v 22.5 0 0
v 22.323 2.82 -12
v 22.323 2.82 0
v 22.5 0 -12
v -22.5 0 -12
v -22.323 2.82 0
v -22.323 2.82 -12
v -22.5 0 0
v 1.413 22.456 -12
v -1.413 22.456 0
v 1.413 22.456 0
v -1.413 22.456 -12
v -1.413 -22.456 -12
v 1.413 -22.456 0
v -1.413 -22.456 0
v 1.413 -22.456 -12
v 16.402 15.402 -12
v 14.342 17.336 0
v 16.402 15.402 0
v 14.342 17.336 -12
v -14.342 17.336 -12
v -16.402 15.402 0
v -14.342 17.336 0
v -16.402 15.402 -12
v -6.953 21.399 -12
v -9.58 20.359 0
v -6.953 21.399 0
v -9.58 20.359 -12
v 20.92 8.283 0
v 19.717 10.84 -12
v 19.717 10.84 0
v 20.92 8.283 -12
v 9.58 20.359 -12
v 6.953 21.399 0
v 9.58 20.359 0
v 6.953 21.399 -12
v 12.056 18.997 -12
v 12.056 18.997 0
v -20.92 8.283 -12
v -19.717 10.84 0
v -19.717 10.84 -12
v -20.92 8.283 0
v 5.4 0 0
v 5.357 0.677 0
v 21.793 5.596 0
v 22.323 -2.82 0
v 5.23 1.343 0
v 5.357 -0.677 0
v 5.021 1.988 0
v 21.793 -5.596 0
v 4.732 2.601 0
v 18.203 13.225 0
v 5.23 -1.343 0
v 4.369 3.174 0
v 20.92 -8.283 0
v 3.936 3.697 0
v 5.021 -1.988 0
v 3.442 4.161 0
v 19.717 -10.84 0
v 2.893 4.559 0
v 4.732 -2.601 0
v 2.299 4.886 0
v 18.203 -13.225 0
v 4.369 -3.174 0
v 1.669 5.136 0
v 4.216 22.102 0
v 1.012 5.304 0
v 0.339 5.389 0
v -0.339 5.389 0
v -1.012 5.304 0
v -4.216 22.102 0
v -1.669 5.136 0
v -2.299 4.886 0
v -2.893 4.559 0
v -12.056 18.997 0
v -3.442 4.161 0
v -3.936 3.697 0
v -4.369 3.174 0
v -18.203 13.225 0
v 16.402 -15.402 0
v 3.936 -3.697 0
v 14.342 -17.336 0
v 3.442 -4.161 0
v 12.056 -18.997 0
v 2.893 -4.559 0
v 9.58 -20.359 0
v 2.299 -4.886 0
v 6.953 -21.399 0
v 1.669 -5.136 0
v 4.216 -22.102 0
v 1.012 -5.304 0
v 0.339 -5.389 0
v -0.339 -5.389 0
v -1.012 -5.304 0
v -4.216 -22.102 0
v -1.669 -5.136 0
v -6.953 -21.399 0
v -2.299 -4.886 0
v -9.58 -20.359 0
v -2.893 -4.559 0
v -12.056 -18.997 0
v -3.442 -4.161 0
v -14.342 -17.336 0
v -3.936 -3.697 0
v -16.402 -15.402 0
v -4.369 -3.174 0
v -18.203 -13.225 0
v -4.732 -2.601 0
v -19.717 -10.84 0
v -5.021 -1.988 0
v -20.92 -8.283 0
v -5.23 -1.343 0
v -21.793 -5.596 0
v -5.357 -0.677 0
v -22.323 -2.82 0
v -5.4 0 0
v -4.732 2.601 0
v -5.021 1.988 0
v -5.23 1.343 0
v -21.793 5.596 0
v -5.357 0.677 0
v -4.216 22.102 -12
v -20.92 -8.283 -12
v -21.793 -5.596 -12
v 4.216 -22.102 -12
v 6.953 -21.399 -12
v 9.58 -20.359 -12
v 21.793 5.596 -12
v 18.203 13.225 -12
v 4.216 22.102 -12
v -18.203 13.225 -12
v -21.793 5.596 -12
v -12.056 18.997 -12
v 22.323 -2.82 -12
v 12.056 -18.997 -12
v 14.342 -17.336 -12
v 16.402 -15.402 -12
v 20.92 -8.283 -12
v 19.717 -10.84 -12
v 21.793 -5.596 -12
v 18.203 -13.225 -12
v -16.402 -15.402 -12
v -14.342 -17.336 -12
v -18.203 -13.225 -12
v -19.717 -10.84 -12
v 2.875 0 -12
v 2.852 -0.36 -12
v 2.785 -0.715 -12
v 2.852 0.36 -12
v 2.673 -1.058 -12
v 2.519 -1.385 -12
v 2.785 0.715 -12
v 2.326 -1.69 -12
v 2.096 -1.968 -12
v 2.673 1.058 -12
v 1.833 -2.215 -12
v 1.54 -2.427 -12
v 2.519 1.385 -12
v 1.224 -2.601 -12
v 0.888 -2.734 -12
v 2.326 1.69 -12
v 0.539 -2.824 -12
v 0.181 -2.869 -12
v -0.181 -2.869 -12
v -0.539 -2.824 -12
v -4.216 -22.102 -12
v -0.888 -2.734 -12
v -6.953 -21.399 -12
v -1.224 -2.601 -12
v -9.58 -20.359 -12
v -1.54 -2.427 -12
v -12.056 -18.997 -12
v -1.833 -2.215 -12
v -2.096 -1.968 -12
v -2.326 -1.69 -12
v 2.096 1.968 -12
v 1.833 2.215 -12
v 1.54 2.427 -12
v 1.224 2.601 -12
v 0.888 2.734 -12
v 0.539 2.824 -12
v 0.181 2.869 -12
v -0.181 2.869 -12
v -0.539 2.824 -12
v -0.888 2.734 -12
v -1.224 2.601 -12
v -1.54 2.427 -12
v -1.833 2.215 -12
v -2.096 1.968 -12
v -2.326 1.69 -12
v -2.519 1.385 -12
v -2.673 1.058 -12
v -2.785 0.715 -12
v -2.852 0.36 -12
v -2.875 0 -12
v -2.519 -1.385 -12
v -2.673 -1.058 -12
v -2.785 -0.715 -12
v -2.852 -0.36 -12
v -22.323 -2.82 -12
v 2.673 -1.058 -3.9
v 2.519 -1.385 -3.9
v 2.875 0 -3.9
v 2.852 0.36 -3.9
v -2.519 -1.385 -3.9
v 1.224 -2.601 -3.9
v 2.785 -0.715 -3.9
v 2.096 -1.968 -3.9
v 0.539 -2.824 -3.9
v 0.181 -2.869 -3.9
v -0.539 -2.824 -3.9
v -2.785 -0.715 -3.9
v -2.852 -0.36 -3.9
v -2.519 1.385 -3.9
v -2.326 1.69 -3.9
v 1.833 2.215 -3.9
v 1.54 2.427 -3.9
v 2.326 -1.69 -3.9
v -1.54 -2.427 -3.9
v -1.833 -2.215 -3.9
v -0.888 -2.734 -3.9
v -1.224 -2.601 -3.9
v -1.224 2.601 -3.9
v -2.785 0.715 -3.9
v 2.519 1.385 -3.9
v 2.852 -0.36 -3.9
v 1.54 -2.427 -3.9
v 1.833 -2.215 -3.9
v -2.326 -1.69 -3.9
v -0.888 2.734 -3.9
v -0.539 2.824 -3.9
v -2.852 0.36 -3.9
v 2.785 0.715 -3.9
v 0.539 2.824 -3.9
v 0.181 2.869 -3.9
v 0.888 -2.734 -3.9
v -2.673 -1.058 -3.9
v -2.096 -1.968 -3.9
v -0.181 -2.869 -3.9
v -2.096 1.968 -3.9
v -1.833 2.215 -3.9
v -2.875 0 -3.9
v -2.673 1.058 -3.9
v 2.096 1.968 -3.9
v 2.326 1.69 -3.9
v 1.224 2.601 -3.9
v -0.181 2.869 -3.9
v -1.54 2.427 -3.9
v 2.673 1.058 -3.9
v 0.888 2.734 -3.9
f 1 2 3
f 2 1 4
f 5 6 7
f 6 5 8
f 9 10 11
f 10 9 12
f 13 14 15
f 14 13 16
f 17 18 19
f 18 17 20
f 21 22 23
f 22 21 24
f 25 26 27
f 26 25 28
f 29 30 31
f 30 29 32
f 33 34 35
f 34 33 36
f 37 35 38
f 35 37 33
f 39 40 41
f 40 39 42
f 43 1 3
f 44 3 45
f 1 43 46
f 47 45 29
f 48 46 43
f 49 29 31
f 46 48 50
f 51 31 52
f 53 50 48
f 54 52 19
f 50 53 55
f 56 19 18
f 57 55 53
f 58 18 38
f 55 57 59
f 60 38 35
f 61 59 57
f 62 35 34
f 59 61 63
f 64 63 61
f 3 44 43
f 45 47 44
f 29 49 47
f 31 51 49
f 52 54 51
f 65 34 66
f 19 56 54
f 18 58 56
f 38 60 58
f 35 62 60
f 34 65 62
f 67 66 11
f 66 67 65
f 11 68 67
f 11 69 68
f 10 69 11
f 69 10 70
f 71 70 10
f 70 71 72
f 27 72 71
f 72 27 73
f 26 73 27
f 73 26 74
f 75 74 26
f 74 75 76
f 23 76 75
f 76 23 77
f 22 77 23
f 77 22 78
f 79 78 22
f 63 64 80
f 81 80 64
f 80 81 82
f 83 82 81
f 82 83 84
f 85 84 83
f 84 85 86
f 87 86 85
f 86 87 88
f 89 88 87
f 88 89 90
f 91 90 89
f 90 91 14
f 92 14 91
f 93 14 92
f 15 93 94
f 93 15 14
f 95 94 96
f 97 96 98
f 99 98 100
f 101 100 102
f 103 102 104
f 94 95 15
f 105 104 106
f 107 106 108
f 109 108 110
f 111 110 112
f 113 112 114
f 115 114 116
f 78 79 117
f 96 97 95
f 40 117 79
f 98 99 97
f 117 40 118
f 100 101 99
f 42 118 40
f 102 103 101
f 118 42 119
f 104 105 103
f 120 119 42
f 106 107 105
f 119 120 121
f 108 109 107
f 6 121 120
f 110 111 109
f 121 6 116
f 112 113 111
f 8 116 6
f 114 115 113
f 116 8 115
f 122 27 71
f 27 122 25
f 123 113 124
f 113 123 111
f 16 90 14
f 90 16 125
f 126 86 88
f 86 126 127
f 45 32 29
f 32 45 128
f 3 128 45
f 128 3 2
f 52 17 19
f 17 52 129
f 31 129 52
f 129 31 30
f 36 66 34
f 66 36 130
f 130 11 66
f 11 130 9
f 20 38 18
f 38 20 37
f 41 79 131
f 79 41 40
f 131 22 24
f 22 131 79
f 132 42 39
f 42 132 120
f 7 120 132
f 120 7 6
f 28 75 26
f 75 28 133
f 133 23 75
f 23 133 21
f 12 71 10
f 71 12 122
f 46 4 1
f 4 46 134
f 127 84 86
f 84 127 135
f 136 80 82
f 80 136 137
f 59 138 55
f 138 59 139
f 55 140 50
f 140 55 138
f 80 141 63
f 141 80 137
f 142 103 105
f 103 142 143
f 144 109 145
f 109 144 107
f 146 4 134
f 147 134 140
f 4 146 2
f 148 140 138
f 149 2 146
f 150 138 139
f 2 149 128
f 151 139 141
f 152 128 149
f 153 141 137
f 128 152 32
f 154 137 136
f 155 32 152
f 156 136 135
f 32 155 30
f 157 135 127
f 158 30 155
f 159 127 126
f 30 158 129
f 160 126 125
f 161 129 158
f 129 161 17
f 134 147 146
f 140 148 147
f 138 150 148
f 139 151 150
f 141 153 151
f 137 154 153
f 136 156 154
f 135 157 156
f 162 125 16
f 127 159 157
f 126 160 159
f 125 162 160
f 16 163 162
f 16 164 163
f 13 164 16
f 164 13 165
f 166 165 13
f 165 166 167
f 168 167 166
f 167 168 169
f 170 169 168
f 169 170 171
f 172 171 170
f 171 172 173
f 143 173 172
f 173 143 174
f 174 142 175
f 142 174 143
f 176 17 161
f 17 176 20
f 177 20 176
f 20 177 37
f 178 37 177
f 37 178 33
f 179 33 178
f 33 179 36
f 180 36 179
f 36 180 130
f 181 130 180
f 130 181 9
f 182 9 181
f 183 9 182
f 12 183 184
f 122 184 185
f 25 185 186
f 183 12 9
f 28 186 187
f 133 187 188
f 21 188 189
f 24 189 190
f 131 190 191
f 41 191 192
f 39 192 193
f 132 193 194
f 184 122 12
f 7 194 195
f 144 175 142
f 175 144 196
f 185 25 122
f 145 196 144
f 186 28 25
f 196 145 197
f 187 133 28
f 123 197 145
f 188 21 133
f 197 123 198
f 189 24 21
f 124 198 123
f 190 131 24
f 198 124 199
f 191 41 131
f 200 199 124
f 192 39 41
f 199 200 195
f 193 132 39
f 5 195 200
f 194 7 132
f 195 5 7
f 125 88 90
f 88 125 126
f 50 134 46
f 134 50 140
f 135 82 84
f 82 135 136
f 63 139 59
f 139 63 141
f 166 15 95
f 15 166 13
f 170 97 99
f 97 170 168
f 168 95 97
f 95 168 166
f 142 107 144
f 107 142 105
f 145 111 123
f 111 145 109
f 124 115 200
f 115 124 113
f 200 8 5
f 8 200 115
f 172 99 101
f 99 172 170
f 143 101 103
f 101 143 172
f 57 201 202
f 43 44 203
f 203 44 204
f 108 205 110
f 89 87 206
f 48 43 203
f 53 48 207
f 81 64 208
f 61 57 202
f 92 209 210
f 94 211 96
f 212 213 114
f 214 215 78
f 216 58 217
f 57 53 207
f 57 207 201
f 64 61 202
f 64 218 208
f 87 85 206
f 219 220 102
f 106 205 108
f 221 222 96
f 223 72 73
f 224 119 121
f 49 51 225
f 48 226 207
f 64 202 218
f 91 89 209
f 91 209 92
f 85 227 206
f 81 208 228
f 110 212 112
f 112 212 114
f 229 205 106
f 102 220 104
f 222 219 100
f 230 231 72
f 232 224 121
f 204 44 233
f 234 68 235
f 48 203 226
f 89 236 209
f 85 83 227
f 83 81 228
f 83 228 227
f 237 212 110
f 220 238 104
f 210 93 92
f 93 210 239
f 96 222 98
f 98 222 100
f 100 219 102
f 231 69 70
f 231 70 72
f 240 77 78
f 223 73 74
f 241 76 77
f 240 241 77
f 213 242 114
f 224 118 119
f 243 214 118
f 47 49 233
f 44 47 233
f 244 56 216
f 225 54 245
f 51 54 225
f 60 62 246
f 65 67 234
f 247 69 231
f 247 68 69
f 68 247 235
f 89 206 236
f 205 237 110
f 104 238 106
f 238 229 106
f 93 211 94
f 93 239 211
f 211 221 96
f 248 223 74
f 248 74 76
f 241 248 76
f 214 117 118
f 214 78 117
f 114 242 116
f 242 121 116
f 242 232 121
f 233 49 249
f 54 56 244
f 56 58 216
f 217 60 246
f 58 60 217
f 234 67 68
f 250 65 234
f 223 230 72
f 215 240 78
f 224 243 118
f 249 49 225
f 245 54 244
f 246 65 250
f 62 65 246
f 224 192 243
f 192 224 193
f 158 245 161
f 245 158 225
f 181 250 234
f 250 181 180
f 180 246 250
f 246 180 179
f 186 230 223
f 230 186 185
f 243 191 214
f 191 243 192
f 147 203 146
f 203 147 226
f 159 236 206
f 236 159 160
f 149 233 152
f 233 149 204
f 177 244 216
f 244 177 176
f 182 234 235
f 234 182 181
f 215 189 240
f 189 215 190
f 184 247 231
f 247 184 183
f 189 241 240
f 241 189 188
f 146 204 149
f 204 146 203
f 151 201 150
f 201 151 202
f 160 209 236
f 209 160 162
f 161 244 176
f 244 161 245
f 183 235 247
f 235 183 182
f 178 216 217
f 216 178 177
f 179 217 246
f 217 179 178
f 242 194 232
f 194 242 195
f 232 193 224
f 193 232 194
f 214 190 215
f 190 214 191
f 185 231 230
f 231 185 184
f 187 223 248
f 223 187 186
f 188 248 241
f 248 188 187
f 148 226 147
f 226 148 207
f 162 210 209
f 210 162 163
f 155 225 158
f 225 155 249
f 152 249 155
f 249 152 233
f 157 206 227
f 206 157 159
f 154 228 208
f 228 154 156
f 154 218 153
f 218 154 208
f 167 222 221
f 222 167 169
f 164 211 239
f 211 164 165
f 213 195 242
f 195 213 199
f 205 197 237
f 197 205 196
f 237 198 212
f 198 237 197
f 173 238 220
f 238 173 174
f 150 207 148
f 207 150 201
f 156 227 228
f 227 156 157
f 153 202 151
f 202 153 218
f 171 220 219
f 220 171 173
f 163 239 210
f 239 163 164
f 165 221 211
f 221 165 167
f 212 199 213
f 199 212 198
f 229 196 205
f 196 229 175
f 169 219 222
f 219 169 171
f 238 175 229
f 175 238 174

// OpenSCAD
$fn = 50;


difference() {
	union() {
		translate(v = [0, 0, -12.0000000000]) {
			cylinder(h = 12, r = 22.5000000000);
		}
		translate(v = [0, 0, -12.0000000000]) {
			cylinder(h = 12, r = 2.8750000000);
		}
	}
	union() {
		translate(v = [0, 0, 0]) {
			rotate(a = [0, 0, 0]) {
				difference() {
					union() {
						translate(v = [0, 0, -12.0000000000]) {
							cylinder(h = 12, r = 2.6000000000);
						}
						translate(v = [0, 0, -3.9000000000]) {
							cylinder(h = 3.9000000000, r1 = 2.8750000000, r2 = 5.4000000000);
						}
						translate(v = [0, 0, -12.0000000000]) {
							cylinder(h = 12, r = 2.8750000000);
						}
						translate(v = [0, 0, -12.0000000000]) {
							cylinder(h = 12, r = 2.6000000000);
						}
					}
					union();
				}
			}
		}
	}
}
